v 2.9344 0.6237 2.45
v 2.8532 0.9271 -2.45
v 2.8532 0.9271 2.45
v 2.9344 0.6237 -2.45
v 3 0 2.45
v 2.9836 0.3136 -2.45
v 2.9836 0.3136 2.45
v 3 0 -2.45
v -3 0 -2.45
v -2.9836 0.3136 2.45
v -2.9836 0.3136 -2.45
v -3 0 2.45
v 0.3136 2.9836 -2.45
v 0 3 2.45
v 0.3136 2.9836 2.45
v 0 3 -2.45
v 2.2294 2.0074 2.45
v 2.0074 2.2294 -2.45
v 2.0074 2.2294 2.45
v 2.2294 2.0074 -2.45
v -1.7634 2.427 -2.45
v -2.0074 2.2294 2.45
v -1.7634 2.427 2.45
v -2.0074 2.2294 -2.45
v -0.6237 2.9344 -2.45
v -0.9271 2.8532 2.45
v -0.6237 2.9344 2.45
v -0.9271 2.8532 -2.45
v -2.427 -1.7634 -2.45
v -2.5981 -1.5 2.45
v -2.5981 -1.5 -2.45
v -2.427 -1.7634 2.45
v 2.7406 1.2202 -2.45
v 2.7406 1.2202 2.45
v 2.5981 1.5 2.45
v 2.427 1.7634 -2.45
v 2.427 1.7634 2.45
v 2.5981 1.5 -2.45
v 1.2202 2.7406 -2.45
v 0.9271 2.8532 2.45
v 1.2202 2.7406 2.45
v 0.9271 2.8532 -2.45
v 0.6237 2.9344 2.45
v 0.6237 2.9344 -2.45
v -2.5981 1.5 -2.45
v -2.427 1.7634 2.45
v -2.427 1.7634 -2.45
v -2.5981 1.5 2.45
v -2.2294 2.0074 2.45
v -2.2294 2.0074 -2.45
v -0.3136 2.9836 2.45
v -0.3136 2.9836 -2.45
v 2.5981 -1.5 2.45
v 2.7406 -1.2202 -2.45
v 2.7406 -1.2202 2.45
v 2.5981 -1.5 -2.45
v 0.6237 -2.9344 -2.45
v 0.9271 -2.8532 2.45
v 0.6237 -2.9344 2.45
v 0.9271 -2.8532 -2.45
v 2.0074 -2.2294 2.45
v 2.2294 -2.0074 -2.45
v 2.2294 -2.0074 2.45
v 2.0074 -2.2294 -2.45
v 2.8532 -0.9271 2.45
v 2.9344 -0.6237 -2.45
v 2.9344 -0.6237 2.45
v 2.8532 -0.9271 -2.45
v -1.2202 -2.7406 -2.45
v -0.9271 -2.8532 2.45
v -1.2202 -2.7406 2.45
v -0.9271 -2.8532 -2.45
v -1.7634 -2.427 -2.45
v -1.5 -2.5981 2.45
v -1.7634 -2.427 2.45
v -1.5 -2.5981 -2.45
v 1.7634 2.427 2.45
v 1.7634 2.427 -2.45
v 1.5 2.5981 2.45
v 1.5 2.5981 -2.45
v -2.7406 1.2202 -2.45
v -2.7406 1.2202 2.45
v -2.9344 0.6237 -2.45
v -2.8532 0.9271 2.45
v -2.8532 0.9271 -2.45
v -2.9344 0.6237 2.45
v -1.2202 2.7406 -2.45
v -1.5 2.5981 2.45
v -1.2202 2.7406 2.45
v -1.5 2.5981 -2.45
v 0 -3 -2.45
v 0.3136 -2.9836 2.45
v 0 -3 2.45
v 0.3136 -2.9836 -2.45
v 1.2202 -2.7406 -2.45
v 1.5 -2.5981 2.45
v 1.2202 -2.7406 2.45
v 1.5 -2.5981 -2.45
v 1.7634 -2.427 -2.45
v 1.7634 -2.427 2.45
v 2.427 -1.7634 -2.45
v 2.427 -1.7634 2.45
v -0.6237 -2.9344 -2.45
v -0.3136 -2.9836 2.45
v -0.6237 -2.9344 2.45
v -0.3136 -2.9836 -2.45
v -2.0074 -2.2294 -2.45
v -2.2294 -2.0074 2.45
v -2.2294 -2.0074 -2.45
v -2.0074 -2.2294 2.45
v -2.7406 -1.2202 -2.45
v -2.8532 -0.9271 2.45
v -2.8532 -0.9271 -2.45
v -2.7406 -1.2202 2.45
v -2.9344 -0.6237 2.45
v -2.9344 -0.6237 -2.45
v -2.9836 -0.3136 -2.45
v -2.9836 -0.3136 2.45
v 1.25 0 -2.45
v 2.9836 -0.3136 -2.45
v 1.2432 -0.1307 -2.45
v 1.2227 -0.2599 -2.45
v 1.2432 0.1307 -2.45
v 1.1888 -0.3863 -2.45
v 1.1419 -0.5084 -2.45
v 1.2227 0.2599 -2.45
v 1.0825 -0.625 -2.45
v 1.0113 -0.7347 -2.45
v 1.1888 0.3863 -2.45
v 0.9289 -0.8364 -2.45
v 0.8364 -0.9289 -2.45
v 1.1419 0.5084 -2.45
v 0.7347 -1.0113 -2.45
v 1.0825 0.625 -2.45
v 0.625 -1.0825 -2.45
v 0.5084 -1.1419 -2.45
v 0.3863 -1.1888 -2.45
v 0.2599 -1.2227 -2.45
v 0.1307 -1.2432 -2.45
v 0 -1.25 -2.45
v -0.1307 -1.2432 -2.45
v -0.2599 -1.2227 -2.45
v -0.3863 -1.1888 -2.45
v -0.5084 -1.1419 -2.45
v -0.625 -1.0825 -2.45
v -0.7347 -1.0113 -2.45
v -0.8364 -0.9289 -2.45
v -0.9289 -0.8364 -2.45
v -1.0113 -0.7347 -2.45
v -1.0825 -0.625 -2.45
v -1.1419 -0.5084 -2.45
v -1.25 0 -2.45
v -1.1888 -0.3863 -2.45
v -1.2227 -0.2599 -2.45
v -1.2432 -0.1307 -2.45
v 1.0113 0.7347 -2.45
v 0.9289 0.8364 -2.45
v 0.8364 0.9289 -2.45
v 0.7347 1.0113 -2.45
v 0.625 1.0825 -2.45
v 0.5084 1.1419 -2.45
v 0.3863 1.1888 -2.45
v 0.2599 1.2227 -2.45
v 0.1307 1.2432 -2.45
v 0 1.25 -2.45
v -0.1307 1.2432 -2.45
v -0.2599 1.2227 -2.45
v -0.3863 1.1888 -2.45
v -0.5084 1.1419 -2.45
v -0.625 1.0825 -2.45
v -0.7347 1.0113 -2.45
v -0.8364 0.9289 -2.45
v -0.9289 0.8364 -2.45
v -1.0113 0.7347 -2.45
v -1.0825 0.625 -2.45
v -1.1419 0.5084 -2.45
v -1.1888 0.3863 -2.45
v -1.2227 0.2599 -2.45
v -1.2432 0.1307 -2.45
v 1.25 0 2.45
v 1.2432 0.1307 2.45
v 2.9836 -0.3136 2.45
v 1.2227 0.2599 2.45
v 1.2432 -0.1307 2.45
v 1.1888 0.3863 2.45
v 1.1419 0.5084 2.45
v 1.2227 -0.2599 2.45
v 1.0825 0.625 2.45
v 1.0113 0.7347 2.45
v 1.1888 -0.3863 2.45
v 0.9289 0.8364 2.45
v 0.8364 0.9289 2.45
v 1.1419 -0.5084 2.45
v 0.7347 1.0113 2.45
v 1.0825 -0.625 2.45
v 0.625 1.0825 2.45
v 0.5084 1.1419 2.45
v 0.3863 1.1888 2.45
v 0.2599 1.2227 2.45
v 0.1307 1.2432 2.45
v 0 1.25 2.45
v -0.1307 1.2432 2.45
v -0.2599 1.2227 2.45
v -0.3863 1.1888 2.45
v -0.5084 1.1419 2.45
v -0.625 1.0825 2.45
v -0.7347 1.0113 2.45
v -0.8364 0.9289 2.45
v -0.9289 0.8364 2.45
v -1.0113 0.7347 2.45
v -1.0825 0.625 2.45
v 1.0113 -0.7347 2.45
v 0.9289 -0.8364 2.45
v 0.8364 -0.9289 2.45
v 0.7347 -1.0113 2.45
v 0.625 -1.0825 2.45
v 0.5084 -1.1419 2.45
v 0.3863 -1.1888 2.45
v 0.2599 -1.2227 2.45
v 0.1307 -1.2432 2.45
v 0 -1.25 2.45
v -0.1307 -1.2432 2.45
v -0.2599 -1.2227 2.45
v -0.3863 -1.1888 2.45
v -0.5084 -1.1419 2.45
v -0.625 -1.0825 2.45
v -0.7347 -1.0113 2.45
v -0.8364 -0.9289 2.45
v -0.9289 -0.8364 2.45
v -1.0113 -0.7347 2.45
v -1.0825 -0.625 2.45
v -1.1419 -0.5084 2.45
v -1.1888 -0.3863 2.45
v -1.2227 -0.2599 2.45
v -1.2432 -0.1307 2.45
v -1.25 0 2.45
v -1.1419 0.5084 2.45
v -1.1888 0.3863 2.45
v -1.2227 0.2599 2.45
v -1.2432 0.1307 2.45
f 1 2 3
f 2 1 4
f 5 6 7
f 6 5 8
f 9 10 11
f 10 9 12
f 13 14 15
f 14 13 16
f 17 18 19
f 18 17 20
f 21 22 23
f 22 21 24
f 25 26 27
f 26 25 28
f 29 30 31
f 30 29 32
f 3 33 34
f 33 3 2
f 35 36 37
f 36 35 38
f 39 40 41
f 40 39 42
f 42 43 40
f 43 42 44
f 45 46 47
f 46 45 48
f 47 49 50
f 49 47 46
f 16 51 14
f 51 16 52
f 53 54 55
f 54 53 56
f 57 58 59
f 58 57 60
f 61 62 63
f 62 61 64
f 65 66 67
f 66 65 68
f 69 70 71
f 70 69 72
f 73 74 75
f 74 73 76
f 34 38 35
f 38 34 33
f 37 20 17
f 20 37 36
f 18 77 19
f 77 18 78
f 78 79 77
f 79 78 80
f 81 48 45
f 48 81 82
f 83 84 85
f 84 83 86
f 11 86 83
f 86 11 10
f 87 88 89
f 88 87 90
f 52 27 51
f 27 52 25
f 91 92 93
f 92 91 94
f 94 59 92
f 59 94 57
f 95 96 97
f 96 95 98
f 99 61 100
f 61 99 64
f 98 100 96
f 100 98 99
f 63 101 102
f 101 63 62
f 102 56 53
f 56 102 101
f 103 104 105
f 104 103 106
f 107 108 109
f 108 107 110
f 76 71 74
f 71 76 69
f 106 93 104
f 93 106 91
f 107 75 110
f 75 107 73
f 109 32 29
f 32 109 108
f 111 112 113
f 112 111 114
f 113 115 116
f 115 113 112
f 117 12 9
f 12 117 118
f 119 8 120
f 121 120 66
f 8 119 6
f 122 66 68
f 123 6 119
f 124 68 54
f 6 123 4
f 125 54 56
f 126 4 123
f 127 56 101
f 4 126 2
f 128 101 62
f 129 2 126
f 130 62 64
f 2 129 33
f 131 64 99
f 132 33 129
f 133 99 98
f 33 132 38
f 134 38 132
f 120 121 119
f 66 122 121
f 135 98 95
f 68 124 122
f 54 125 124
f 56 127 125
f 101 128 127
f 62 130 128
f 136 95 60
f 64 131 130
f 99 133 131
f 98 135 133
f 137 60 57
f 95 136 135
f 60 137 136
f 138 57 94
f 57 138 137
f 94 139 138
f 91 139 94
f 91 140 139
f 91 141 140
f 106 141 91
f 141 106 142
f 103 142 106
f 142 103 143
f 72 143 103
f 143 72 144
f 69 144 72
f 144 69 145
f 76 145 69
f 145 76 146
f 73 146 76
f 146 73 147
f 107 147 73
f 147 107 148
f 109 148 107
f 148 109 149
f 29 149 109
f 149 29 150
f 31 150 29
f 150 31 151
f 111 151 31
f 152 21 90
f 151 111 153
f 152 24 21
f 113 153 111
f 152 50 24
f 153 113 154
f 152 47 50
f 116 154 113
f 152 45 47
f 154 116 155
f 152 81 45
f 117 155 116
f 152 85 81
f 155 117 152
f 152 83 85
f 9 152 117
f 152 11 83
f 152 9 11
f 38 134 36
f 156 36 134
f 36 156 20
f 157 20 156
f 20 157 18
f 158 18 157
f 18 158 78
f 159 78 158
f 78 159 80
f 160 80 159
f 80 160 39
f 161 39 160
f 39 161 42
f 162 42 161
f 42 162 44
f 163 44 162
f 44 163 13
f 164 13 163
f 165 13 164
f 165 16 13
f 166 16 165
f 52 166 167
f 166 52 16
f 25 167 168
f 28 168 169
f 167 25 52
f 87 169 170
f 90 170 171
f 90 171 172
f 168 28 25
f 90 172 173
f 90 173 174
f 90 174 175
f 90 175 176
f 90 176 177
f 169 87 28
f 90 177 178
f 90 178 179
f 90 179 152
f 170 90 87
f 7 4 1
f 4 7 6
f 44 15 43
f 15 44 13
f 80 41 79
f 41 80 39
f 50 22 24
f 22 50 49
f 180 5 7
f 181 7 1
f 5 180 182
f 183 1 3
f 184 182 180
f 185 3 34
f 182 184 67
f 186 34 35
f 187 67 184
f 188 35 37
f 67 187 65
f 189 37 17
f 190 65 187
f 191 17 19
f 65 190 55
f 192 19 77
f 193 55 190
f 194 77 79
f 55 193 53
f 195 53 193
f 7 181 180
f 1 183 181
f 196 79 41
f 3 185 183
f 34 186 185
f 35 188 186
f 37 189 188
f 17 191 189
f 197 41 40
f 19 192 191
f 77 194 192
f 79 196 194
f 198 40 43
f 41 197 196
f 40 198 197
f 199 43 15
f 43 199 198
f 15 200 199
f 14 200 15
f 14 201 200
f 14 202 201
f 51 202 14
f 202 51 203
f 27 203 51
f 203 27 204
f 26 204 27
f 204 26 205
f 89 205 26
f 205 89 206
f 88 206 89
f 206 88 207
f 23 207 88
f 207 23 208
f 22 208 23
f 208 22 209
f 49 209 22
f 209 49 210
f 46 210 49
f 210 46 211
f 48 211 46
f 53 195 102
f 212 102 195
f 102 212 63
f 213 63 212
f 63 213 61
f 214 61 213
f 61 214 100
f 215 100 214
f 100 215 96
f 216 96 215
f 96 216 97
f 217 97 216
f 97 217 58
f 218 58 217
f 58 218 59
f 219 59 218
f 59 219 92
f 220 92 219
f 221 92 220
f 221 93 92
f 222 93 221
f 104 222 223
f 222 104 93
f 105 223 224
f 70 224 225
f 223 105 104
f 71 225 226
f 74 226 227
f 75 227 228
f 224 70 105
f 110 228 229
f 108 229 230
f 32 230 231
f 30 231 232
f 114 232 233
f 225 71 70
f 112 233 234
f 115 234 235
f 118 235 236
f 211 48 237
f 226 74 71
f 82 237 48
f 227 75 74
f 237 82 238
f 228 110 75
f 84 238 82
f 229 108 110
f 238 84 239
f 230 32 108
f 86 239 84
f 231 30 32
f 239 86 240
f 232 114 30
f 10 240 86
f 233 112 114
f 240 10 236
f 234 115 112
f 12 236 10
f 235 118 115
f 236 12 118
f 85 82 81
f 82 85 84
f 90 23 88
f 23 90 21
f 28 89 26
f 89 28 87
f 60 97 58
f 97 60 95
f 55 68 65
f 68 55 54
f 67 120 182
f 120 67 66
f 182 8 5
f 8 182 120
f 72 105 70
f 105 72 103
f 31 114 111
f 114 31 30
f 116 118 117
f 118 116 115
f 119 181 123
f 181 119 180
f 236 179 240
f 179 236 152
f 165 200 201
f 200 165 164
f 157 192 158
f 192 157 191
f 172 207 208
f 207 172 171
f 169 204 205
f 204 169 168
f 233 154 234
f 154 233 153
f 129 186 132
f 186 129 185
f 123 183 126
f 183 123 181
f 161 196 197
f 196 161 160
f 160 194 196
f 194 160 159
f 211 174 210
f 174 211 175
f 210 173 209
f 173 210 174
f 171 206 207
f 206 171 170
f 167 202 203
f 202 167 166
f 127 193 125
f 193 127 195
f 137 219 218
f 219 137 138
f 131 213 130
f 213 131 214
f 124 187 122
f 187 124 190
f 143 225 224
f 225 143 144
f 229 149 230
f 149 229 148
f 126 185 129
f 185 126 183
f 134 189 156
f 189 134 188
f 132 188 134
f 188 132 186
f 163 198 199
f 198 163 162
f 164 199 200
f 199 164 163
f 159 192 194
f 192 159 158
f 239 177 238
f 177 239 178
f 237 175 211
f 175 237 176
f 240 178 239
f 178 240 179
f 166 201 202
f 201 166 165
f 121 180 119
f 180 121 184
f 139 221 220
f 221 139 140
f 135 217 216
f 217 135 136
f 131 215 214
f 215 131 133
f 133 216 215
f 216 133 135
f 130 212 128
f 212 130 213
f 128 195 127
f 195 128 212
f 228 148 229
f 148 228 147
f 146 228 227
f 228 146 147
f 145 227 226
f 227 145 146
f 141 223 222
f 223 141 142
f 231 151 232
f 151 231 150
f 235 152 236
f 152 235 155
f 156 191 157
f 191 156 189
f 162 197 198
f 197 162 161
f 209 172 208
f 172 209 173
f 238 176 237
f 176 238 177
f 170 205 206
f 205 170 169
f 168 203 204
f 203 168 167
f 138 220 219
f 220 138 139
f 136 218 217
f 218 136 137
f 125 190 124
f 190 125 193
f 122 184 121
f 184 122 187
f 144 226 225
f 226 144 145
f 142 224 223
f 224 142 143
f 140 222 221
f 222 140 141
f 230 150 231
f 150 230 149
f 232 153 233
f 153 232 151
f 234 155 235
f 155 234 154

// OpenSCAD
difference() {
  cylinder(4.9, 6/2, 6/2, true, $fn=60);
  cylinder(6, 2.5/2, 2.5/2, true, $fn=60);
}
